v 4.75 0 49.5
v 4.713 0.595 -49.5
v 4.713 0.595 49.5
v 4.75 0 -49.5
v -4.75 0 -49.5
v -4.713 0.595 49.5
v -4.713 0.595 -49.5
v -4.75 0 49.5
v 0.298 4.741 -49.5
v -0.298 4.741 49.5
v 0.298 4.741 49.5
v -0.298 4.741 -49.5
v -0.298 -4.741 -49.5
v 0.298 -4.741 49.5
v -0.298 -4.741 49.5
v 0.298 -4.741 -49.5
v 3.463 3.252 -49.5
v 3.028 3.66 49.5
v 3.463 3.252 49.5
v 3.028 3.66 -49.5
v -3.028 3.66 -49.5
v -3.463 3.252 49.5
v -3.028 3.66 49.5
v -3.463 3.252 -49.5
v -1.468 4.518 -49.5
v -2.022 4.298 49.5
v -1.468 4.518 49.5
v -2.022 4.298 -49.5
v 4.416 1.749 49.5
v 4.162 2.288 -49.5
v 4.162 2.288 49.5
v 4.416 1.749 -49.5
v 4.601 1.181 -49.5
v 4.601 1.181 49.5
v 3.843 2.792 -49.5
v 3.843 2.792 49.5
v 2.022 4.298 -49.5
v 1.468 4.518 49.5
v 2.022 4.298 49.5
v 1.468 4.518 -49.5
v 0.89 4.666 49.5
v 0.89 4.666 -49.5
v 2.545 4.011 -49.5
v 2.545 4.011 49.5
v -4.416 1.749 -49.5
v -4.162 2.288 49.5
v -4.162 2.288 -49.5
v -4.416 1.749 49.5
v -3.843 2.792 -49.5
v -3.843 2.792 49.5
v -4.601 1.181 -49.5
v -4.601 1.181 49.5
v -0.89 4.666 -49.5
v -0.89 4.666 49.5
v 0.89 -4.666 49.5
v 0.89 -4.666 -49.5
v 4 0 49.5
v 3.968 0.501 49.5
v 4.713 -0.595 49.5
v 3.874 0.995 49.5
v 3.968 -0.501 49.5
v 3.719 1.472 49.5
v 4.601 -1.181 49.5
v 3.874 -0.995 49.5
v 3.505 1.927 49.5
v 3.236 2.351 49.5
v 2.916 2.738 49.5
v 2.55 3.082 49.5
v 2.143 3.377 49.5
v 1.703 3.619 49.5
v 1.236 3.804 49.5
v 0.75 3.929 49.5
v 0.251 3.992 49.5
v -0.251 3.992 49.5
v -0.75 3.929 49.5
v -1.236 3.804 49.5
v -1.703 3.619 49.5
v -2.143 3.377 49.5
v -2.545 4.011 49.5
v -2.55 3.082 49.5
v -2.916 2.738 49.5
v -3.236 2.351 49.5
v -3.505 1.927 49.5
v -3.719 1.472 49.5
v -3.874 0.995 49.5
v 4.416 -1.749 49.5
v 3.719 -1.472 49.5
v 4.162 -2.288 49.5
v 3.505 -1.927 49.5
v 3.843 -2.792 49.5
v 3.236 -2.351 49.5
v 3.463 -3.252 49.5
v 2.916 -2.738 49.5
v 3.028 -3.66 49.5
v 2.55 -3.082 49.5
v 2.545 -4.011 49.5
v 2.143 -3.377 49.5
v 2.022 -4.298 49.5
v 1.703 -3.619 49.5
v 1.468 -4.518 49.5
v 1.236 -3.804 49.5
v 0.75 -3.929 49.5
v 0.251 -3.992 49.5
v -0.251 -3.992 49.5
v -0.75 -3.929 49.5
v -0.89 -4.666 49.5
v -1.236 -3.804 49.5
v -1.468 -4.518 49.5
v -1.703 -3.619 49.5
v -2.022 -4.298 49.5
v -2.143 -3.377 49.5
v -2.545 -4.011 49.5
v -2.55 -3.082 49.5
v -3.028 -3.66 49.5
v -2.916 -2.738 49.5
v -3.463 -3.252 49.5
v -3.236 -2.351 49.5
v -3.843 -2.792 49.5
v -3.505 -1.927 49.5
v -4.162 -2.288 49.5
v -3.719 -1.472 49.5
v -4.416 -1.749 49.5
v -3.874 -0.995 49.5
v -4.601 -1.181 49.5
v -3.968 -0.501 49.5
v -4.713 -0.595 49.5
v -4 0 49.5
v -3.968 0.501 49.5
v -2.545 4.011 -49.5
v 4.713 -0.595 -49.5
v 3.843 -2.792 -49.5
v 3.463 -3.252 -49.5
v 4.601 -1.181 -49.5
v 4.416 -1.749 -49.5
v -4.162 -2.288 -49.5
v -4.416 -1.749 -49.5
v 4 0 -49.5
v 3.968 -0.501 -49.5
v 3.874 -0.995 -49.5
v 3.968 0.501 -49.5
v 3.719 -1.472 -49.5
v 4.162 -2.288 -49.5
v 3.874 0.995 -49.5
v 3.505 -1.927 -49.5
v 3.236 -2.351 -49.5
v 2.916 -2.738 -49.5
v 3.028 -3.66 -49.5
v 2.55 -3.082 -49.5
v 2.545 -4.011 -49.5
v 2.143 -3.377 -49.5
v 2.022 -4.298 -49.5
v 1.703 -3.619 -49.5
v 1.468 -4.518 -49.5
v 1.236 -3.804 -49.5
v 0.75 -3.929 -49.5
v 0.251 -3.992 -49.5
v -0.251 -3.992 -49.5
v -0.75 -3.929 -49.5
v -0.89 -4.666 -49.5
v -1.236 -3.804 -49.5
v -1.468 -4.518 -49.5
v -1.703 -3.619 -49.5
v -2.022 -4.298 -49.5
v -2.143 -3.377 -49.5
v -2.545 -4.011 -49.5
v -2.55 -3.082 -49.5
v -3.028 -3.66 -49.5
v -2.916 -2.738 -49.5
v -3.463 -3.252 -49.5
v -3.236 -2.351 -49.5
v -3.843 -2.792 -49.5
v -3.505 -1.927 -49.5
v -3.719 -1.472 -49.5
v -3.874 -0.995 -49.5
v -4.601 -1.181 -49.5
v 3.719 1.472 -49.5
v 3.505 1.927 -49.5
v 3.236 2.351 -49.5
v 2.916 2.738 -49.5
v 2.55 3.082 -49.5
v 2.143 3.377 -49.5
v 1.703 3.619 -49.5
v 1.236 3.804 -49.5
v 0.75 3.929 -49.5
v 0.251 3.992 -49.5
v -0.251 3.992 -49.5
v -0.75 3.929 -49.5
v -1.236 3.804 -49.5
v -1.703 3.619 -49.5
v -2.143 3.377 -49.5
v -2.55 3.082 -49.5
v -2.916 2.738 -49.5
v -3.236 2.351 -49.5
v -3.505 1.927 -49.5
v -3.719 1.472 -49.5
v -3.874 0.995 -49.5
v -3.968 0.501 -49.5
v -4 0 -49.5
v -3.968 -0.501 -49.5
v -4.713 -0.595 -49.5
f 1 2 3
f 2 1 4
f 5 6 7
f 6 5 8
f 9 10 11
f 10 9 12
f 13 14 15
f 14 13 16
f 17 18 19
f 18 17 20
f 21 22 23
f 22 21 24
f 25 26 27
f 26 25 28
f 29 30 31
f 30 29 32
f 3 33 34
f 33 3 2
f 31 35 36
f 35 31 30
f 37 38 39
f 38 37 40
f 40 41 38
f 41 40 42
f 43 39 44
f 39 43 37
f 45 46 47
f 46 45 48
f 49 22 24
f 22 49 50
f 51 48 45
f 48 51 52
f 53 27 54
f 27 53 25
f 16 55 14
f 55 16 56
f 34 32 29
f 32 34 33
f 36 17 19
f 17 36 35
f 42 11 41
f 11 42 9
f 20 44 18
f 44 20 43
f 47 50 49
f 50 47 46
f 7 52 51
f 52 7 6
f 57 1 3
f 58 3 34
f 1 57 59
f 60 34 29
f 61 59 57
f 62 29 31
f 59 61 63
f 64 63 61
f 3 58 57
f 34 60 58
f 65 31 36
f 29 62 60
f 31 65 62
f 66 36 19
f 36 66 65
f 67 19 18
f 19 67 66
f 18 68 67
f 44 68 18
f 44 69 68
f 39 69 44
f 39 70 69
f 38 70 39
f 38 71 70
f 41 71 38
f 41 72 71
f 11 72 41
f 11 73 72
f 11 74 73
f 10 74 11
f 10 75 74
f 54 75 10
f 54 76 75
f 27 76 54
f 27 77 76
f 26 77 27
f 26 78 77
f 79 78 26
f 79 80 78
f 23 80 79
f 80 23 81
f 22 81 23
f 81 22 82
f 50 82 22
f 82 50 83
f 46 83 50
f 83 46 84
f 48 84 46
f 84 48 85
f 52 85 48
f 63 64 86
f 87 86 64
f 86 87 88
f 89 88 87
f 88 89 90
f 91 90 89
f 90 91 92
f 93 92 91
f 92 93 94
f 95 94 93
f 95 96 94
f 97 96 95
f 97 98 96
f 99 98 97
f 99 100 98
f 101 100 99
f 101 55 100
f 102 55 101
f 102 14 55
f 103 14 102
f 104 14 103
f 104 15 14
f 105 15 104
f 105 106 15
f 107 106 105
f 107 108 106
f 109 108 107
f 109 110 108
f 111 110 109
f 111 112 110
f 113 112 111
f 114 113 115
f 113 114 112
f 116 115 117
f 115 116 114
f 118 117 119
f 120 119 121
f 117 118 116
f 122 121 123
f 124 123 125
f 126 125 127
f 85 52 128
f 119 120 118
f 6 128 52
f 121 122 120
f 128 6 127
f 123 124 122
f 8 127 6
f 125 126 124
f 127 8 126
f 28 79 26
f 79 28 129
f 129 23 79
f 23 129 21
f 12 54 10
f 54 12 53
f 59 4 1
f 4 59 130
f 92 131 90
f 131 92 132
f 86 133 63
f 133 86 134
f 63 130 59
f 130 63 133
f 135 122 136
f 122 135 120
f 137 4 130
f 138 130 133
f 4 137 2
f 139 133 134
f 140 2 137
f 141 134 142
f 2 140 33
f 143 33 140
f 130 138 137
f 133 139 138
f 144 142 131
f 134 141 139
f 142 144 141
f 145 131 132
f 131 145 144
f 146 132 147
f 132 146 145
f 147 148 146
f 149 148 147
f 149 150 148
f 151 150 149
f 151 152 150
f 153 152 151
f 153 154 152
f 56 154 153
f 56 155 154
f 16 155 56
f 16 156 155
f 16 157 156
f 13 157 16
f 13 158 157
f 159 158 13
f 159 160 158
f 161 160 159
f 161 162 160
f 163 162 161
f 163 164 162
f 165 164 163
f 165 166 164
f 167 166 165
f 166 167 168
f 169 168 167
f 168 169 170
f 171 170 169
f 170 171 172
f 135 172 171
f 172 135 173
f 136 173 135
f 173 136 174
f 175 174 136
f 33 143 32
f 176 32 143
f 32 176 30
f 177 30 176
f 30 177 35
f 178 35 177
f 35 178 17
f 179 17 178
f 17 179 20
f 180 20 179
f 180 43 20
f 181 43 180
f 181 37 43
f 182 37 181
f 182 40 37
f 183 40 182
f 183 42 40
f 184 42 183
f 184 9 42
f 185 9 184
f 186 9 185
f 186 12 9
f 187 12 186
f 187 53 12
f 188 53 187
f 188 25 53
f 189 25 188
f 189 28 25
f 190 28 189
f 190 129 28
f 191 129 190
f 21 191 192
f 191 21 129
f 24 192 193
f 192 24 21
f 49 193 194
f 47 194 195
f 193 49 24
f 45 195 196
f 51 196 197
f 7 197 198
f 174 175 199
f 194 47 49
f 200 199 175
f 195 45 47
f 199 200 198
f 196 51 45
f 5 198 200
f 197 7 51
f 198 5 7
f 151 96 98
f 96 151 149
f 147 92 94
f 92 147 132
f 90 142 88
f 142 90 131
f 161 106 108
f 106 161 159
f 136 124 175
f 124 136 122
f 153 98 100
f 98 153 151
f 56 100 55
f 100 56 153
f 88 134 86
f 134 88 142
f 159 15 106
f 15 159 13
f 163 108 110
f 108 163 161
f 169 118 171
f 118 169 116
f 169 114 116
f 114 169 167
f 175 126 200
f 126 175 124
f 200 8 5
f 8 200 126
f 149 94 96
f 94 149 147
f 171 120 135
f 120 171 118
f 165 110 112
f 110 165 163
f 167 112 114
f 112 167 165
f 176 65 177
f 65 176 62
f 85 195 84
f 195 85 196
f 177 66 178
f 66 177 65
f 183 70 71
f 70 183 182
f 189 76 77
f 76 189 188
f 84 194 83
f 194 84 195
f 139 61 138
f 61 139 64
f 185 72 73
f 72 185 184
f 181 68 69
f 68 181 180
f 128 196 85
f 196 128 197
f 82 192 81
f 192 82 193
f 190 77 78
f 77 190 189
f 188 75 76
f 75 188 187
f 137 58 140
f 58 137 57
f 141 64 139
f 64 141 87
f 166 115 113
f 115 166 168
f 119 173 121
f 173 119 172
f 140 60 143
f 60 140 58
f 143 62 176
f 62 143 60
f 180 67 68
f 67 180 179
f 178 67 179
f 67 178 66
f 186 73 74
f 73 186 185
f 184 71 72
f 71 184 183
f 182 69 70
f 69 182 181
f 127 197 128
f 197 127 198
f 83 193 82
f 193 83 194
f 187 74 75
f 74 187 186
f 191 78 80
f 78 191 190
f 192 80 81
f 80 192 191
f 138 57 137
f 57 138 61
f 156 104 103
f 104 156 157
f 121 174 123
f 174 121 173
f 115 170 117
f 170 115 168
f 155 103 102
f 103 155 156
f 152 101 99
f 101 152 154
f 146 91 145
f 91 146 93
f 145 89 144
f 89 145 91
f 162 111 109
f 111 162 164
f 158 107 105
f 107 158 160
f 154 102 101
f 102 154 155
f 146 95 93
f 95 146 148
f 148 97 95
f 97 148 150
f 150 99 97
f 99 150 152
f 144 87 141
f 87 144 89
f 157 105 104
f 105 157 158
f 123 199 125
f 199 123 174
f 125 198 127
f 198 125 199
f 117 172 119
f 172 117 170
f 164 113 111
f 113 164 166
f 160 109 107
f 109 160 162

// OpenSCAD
$fn = 50;


difference() {
	union() {
		translate(v = [0, 0, -49.5000000000]) {
			cylinder(h = 99, r = 4.7500000000);
		}
	}
	union() {
		translate(v = [0, 0, -100.0000000000]) {
			cylinder(h = 200, r = 4.0000000000);
		}
	}
}
